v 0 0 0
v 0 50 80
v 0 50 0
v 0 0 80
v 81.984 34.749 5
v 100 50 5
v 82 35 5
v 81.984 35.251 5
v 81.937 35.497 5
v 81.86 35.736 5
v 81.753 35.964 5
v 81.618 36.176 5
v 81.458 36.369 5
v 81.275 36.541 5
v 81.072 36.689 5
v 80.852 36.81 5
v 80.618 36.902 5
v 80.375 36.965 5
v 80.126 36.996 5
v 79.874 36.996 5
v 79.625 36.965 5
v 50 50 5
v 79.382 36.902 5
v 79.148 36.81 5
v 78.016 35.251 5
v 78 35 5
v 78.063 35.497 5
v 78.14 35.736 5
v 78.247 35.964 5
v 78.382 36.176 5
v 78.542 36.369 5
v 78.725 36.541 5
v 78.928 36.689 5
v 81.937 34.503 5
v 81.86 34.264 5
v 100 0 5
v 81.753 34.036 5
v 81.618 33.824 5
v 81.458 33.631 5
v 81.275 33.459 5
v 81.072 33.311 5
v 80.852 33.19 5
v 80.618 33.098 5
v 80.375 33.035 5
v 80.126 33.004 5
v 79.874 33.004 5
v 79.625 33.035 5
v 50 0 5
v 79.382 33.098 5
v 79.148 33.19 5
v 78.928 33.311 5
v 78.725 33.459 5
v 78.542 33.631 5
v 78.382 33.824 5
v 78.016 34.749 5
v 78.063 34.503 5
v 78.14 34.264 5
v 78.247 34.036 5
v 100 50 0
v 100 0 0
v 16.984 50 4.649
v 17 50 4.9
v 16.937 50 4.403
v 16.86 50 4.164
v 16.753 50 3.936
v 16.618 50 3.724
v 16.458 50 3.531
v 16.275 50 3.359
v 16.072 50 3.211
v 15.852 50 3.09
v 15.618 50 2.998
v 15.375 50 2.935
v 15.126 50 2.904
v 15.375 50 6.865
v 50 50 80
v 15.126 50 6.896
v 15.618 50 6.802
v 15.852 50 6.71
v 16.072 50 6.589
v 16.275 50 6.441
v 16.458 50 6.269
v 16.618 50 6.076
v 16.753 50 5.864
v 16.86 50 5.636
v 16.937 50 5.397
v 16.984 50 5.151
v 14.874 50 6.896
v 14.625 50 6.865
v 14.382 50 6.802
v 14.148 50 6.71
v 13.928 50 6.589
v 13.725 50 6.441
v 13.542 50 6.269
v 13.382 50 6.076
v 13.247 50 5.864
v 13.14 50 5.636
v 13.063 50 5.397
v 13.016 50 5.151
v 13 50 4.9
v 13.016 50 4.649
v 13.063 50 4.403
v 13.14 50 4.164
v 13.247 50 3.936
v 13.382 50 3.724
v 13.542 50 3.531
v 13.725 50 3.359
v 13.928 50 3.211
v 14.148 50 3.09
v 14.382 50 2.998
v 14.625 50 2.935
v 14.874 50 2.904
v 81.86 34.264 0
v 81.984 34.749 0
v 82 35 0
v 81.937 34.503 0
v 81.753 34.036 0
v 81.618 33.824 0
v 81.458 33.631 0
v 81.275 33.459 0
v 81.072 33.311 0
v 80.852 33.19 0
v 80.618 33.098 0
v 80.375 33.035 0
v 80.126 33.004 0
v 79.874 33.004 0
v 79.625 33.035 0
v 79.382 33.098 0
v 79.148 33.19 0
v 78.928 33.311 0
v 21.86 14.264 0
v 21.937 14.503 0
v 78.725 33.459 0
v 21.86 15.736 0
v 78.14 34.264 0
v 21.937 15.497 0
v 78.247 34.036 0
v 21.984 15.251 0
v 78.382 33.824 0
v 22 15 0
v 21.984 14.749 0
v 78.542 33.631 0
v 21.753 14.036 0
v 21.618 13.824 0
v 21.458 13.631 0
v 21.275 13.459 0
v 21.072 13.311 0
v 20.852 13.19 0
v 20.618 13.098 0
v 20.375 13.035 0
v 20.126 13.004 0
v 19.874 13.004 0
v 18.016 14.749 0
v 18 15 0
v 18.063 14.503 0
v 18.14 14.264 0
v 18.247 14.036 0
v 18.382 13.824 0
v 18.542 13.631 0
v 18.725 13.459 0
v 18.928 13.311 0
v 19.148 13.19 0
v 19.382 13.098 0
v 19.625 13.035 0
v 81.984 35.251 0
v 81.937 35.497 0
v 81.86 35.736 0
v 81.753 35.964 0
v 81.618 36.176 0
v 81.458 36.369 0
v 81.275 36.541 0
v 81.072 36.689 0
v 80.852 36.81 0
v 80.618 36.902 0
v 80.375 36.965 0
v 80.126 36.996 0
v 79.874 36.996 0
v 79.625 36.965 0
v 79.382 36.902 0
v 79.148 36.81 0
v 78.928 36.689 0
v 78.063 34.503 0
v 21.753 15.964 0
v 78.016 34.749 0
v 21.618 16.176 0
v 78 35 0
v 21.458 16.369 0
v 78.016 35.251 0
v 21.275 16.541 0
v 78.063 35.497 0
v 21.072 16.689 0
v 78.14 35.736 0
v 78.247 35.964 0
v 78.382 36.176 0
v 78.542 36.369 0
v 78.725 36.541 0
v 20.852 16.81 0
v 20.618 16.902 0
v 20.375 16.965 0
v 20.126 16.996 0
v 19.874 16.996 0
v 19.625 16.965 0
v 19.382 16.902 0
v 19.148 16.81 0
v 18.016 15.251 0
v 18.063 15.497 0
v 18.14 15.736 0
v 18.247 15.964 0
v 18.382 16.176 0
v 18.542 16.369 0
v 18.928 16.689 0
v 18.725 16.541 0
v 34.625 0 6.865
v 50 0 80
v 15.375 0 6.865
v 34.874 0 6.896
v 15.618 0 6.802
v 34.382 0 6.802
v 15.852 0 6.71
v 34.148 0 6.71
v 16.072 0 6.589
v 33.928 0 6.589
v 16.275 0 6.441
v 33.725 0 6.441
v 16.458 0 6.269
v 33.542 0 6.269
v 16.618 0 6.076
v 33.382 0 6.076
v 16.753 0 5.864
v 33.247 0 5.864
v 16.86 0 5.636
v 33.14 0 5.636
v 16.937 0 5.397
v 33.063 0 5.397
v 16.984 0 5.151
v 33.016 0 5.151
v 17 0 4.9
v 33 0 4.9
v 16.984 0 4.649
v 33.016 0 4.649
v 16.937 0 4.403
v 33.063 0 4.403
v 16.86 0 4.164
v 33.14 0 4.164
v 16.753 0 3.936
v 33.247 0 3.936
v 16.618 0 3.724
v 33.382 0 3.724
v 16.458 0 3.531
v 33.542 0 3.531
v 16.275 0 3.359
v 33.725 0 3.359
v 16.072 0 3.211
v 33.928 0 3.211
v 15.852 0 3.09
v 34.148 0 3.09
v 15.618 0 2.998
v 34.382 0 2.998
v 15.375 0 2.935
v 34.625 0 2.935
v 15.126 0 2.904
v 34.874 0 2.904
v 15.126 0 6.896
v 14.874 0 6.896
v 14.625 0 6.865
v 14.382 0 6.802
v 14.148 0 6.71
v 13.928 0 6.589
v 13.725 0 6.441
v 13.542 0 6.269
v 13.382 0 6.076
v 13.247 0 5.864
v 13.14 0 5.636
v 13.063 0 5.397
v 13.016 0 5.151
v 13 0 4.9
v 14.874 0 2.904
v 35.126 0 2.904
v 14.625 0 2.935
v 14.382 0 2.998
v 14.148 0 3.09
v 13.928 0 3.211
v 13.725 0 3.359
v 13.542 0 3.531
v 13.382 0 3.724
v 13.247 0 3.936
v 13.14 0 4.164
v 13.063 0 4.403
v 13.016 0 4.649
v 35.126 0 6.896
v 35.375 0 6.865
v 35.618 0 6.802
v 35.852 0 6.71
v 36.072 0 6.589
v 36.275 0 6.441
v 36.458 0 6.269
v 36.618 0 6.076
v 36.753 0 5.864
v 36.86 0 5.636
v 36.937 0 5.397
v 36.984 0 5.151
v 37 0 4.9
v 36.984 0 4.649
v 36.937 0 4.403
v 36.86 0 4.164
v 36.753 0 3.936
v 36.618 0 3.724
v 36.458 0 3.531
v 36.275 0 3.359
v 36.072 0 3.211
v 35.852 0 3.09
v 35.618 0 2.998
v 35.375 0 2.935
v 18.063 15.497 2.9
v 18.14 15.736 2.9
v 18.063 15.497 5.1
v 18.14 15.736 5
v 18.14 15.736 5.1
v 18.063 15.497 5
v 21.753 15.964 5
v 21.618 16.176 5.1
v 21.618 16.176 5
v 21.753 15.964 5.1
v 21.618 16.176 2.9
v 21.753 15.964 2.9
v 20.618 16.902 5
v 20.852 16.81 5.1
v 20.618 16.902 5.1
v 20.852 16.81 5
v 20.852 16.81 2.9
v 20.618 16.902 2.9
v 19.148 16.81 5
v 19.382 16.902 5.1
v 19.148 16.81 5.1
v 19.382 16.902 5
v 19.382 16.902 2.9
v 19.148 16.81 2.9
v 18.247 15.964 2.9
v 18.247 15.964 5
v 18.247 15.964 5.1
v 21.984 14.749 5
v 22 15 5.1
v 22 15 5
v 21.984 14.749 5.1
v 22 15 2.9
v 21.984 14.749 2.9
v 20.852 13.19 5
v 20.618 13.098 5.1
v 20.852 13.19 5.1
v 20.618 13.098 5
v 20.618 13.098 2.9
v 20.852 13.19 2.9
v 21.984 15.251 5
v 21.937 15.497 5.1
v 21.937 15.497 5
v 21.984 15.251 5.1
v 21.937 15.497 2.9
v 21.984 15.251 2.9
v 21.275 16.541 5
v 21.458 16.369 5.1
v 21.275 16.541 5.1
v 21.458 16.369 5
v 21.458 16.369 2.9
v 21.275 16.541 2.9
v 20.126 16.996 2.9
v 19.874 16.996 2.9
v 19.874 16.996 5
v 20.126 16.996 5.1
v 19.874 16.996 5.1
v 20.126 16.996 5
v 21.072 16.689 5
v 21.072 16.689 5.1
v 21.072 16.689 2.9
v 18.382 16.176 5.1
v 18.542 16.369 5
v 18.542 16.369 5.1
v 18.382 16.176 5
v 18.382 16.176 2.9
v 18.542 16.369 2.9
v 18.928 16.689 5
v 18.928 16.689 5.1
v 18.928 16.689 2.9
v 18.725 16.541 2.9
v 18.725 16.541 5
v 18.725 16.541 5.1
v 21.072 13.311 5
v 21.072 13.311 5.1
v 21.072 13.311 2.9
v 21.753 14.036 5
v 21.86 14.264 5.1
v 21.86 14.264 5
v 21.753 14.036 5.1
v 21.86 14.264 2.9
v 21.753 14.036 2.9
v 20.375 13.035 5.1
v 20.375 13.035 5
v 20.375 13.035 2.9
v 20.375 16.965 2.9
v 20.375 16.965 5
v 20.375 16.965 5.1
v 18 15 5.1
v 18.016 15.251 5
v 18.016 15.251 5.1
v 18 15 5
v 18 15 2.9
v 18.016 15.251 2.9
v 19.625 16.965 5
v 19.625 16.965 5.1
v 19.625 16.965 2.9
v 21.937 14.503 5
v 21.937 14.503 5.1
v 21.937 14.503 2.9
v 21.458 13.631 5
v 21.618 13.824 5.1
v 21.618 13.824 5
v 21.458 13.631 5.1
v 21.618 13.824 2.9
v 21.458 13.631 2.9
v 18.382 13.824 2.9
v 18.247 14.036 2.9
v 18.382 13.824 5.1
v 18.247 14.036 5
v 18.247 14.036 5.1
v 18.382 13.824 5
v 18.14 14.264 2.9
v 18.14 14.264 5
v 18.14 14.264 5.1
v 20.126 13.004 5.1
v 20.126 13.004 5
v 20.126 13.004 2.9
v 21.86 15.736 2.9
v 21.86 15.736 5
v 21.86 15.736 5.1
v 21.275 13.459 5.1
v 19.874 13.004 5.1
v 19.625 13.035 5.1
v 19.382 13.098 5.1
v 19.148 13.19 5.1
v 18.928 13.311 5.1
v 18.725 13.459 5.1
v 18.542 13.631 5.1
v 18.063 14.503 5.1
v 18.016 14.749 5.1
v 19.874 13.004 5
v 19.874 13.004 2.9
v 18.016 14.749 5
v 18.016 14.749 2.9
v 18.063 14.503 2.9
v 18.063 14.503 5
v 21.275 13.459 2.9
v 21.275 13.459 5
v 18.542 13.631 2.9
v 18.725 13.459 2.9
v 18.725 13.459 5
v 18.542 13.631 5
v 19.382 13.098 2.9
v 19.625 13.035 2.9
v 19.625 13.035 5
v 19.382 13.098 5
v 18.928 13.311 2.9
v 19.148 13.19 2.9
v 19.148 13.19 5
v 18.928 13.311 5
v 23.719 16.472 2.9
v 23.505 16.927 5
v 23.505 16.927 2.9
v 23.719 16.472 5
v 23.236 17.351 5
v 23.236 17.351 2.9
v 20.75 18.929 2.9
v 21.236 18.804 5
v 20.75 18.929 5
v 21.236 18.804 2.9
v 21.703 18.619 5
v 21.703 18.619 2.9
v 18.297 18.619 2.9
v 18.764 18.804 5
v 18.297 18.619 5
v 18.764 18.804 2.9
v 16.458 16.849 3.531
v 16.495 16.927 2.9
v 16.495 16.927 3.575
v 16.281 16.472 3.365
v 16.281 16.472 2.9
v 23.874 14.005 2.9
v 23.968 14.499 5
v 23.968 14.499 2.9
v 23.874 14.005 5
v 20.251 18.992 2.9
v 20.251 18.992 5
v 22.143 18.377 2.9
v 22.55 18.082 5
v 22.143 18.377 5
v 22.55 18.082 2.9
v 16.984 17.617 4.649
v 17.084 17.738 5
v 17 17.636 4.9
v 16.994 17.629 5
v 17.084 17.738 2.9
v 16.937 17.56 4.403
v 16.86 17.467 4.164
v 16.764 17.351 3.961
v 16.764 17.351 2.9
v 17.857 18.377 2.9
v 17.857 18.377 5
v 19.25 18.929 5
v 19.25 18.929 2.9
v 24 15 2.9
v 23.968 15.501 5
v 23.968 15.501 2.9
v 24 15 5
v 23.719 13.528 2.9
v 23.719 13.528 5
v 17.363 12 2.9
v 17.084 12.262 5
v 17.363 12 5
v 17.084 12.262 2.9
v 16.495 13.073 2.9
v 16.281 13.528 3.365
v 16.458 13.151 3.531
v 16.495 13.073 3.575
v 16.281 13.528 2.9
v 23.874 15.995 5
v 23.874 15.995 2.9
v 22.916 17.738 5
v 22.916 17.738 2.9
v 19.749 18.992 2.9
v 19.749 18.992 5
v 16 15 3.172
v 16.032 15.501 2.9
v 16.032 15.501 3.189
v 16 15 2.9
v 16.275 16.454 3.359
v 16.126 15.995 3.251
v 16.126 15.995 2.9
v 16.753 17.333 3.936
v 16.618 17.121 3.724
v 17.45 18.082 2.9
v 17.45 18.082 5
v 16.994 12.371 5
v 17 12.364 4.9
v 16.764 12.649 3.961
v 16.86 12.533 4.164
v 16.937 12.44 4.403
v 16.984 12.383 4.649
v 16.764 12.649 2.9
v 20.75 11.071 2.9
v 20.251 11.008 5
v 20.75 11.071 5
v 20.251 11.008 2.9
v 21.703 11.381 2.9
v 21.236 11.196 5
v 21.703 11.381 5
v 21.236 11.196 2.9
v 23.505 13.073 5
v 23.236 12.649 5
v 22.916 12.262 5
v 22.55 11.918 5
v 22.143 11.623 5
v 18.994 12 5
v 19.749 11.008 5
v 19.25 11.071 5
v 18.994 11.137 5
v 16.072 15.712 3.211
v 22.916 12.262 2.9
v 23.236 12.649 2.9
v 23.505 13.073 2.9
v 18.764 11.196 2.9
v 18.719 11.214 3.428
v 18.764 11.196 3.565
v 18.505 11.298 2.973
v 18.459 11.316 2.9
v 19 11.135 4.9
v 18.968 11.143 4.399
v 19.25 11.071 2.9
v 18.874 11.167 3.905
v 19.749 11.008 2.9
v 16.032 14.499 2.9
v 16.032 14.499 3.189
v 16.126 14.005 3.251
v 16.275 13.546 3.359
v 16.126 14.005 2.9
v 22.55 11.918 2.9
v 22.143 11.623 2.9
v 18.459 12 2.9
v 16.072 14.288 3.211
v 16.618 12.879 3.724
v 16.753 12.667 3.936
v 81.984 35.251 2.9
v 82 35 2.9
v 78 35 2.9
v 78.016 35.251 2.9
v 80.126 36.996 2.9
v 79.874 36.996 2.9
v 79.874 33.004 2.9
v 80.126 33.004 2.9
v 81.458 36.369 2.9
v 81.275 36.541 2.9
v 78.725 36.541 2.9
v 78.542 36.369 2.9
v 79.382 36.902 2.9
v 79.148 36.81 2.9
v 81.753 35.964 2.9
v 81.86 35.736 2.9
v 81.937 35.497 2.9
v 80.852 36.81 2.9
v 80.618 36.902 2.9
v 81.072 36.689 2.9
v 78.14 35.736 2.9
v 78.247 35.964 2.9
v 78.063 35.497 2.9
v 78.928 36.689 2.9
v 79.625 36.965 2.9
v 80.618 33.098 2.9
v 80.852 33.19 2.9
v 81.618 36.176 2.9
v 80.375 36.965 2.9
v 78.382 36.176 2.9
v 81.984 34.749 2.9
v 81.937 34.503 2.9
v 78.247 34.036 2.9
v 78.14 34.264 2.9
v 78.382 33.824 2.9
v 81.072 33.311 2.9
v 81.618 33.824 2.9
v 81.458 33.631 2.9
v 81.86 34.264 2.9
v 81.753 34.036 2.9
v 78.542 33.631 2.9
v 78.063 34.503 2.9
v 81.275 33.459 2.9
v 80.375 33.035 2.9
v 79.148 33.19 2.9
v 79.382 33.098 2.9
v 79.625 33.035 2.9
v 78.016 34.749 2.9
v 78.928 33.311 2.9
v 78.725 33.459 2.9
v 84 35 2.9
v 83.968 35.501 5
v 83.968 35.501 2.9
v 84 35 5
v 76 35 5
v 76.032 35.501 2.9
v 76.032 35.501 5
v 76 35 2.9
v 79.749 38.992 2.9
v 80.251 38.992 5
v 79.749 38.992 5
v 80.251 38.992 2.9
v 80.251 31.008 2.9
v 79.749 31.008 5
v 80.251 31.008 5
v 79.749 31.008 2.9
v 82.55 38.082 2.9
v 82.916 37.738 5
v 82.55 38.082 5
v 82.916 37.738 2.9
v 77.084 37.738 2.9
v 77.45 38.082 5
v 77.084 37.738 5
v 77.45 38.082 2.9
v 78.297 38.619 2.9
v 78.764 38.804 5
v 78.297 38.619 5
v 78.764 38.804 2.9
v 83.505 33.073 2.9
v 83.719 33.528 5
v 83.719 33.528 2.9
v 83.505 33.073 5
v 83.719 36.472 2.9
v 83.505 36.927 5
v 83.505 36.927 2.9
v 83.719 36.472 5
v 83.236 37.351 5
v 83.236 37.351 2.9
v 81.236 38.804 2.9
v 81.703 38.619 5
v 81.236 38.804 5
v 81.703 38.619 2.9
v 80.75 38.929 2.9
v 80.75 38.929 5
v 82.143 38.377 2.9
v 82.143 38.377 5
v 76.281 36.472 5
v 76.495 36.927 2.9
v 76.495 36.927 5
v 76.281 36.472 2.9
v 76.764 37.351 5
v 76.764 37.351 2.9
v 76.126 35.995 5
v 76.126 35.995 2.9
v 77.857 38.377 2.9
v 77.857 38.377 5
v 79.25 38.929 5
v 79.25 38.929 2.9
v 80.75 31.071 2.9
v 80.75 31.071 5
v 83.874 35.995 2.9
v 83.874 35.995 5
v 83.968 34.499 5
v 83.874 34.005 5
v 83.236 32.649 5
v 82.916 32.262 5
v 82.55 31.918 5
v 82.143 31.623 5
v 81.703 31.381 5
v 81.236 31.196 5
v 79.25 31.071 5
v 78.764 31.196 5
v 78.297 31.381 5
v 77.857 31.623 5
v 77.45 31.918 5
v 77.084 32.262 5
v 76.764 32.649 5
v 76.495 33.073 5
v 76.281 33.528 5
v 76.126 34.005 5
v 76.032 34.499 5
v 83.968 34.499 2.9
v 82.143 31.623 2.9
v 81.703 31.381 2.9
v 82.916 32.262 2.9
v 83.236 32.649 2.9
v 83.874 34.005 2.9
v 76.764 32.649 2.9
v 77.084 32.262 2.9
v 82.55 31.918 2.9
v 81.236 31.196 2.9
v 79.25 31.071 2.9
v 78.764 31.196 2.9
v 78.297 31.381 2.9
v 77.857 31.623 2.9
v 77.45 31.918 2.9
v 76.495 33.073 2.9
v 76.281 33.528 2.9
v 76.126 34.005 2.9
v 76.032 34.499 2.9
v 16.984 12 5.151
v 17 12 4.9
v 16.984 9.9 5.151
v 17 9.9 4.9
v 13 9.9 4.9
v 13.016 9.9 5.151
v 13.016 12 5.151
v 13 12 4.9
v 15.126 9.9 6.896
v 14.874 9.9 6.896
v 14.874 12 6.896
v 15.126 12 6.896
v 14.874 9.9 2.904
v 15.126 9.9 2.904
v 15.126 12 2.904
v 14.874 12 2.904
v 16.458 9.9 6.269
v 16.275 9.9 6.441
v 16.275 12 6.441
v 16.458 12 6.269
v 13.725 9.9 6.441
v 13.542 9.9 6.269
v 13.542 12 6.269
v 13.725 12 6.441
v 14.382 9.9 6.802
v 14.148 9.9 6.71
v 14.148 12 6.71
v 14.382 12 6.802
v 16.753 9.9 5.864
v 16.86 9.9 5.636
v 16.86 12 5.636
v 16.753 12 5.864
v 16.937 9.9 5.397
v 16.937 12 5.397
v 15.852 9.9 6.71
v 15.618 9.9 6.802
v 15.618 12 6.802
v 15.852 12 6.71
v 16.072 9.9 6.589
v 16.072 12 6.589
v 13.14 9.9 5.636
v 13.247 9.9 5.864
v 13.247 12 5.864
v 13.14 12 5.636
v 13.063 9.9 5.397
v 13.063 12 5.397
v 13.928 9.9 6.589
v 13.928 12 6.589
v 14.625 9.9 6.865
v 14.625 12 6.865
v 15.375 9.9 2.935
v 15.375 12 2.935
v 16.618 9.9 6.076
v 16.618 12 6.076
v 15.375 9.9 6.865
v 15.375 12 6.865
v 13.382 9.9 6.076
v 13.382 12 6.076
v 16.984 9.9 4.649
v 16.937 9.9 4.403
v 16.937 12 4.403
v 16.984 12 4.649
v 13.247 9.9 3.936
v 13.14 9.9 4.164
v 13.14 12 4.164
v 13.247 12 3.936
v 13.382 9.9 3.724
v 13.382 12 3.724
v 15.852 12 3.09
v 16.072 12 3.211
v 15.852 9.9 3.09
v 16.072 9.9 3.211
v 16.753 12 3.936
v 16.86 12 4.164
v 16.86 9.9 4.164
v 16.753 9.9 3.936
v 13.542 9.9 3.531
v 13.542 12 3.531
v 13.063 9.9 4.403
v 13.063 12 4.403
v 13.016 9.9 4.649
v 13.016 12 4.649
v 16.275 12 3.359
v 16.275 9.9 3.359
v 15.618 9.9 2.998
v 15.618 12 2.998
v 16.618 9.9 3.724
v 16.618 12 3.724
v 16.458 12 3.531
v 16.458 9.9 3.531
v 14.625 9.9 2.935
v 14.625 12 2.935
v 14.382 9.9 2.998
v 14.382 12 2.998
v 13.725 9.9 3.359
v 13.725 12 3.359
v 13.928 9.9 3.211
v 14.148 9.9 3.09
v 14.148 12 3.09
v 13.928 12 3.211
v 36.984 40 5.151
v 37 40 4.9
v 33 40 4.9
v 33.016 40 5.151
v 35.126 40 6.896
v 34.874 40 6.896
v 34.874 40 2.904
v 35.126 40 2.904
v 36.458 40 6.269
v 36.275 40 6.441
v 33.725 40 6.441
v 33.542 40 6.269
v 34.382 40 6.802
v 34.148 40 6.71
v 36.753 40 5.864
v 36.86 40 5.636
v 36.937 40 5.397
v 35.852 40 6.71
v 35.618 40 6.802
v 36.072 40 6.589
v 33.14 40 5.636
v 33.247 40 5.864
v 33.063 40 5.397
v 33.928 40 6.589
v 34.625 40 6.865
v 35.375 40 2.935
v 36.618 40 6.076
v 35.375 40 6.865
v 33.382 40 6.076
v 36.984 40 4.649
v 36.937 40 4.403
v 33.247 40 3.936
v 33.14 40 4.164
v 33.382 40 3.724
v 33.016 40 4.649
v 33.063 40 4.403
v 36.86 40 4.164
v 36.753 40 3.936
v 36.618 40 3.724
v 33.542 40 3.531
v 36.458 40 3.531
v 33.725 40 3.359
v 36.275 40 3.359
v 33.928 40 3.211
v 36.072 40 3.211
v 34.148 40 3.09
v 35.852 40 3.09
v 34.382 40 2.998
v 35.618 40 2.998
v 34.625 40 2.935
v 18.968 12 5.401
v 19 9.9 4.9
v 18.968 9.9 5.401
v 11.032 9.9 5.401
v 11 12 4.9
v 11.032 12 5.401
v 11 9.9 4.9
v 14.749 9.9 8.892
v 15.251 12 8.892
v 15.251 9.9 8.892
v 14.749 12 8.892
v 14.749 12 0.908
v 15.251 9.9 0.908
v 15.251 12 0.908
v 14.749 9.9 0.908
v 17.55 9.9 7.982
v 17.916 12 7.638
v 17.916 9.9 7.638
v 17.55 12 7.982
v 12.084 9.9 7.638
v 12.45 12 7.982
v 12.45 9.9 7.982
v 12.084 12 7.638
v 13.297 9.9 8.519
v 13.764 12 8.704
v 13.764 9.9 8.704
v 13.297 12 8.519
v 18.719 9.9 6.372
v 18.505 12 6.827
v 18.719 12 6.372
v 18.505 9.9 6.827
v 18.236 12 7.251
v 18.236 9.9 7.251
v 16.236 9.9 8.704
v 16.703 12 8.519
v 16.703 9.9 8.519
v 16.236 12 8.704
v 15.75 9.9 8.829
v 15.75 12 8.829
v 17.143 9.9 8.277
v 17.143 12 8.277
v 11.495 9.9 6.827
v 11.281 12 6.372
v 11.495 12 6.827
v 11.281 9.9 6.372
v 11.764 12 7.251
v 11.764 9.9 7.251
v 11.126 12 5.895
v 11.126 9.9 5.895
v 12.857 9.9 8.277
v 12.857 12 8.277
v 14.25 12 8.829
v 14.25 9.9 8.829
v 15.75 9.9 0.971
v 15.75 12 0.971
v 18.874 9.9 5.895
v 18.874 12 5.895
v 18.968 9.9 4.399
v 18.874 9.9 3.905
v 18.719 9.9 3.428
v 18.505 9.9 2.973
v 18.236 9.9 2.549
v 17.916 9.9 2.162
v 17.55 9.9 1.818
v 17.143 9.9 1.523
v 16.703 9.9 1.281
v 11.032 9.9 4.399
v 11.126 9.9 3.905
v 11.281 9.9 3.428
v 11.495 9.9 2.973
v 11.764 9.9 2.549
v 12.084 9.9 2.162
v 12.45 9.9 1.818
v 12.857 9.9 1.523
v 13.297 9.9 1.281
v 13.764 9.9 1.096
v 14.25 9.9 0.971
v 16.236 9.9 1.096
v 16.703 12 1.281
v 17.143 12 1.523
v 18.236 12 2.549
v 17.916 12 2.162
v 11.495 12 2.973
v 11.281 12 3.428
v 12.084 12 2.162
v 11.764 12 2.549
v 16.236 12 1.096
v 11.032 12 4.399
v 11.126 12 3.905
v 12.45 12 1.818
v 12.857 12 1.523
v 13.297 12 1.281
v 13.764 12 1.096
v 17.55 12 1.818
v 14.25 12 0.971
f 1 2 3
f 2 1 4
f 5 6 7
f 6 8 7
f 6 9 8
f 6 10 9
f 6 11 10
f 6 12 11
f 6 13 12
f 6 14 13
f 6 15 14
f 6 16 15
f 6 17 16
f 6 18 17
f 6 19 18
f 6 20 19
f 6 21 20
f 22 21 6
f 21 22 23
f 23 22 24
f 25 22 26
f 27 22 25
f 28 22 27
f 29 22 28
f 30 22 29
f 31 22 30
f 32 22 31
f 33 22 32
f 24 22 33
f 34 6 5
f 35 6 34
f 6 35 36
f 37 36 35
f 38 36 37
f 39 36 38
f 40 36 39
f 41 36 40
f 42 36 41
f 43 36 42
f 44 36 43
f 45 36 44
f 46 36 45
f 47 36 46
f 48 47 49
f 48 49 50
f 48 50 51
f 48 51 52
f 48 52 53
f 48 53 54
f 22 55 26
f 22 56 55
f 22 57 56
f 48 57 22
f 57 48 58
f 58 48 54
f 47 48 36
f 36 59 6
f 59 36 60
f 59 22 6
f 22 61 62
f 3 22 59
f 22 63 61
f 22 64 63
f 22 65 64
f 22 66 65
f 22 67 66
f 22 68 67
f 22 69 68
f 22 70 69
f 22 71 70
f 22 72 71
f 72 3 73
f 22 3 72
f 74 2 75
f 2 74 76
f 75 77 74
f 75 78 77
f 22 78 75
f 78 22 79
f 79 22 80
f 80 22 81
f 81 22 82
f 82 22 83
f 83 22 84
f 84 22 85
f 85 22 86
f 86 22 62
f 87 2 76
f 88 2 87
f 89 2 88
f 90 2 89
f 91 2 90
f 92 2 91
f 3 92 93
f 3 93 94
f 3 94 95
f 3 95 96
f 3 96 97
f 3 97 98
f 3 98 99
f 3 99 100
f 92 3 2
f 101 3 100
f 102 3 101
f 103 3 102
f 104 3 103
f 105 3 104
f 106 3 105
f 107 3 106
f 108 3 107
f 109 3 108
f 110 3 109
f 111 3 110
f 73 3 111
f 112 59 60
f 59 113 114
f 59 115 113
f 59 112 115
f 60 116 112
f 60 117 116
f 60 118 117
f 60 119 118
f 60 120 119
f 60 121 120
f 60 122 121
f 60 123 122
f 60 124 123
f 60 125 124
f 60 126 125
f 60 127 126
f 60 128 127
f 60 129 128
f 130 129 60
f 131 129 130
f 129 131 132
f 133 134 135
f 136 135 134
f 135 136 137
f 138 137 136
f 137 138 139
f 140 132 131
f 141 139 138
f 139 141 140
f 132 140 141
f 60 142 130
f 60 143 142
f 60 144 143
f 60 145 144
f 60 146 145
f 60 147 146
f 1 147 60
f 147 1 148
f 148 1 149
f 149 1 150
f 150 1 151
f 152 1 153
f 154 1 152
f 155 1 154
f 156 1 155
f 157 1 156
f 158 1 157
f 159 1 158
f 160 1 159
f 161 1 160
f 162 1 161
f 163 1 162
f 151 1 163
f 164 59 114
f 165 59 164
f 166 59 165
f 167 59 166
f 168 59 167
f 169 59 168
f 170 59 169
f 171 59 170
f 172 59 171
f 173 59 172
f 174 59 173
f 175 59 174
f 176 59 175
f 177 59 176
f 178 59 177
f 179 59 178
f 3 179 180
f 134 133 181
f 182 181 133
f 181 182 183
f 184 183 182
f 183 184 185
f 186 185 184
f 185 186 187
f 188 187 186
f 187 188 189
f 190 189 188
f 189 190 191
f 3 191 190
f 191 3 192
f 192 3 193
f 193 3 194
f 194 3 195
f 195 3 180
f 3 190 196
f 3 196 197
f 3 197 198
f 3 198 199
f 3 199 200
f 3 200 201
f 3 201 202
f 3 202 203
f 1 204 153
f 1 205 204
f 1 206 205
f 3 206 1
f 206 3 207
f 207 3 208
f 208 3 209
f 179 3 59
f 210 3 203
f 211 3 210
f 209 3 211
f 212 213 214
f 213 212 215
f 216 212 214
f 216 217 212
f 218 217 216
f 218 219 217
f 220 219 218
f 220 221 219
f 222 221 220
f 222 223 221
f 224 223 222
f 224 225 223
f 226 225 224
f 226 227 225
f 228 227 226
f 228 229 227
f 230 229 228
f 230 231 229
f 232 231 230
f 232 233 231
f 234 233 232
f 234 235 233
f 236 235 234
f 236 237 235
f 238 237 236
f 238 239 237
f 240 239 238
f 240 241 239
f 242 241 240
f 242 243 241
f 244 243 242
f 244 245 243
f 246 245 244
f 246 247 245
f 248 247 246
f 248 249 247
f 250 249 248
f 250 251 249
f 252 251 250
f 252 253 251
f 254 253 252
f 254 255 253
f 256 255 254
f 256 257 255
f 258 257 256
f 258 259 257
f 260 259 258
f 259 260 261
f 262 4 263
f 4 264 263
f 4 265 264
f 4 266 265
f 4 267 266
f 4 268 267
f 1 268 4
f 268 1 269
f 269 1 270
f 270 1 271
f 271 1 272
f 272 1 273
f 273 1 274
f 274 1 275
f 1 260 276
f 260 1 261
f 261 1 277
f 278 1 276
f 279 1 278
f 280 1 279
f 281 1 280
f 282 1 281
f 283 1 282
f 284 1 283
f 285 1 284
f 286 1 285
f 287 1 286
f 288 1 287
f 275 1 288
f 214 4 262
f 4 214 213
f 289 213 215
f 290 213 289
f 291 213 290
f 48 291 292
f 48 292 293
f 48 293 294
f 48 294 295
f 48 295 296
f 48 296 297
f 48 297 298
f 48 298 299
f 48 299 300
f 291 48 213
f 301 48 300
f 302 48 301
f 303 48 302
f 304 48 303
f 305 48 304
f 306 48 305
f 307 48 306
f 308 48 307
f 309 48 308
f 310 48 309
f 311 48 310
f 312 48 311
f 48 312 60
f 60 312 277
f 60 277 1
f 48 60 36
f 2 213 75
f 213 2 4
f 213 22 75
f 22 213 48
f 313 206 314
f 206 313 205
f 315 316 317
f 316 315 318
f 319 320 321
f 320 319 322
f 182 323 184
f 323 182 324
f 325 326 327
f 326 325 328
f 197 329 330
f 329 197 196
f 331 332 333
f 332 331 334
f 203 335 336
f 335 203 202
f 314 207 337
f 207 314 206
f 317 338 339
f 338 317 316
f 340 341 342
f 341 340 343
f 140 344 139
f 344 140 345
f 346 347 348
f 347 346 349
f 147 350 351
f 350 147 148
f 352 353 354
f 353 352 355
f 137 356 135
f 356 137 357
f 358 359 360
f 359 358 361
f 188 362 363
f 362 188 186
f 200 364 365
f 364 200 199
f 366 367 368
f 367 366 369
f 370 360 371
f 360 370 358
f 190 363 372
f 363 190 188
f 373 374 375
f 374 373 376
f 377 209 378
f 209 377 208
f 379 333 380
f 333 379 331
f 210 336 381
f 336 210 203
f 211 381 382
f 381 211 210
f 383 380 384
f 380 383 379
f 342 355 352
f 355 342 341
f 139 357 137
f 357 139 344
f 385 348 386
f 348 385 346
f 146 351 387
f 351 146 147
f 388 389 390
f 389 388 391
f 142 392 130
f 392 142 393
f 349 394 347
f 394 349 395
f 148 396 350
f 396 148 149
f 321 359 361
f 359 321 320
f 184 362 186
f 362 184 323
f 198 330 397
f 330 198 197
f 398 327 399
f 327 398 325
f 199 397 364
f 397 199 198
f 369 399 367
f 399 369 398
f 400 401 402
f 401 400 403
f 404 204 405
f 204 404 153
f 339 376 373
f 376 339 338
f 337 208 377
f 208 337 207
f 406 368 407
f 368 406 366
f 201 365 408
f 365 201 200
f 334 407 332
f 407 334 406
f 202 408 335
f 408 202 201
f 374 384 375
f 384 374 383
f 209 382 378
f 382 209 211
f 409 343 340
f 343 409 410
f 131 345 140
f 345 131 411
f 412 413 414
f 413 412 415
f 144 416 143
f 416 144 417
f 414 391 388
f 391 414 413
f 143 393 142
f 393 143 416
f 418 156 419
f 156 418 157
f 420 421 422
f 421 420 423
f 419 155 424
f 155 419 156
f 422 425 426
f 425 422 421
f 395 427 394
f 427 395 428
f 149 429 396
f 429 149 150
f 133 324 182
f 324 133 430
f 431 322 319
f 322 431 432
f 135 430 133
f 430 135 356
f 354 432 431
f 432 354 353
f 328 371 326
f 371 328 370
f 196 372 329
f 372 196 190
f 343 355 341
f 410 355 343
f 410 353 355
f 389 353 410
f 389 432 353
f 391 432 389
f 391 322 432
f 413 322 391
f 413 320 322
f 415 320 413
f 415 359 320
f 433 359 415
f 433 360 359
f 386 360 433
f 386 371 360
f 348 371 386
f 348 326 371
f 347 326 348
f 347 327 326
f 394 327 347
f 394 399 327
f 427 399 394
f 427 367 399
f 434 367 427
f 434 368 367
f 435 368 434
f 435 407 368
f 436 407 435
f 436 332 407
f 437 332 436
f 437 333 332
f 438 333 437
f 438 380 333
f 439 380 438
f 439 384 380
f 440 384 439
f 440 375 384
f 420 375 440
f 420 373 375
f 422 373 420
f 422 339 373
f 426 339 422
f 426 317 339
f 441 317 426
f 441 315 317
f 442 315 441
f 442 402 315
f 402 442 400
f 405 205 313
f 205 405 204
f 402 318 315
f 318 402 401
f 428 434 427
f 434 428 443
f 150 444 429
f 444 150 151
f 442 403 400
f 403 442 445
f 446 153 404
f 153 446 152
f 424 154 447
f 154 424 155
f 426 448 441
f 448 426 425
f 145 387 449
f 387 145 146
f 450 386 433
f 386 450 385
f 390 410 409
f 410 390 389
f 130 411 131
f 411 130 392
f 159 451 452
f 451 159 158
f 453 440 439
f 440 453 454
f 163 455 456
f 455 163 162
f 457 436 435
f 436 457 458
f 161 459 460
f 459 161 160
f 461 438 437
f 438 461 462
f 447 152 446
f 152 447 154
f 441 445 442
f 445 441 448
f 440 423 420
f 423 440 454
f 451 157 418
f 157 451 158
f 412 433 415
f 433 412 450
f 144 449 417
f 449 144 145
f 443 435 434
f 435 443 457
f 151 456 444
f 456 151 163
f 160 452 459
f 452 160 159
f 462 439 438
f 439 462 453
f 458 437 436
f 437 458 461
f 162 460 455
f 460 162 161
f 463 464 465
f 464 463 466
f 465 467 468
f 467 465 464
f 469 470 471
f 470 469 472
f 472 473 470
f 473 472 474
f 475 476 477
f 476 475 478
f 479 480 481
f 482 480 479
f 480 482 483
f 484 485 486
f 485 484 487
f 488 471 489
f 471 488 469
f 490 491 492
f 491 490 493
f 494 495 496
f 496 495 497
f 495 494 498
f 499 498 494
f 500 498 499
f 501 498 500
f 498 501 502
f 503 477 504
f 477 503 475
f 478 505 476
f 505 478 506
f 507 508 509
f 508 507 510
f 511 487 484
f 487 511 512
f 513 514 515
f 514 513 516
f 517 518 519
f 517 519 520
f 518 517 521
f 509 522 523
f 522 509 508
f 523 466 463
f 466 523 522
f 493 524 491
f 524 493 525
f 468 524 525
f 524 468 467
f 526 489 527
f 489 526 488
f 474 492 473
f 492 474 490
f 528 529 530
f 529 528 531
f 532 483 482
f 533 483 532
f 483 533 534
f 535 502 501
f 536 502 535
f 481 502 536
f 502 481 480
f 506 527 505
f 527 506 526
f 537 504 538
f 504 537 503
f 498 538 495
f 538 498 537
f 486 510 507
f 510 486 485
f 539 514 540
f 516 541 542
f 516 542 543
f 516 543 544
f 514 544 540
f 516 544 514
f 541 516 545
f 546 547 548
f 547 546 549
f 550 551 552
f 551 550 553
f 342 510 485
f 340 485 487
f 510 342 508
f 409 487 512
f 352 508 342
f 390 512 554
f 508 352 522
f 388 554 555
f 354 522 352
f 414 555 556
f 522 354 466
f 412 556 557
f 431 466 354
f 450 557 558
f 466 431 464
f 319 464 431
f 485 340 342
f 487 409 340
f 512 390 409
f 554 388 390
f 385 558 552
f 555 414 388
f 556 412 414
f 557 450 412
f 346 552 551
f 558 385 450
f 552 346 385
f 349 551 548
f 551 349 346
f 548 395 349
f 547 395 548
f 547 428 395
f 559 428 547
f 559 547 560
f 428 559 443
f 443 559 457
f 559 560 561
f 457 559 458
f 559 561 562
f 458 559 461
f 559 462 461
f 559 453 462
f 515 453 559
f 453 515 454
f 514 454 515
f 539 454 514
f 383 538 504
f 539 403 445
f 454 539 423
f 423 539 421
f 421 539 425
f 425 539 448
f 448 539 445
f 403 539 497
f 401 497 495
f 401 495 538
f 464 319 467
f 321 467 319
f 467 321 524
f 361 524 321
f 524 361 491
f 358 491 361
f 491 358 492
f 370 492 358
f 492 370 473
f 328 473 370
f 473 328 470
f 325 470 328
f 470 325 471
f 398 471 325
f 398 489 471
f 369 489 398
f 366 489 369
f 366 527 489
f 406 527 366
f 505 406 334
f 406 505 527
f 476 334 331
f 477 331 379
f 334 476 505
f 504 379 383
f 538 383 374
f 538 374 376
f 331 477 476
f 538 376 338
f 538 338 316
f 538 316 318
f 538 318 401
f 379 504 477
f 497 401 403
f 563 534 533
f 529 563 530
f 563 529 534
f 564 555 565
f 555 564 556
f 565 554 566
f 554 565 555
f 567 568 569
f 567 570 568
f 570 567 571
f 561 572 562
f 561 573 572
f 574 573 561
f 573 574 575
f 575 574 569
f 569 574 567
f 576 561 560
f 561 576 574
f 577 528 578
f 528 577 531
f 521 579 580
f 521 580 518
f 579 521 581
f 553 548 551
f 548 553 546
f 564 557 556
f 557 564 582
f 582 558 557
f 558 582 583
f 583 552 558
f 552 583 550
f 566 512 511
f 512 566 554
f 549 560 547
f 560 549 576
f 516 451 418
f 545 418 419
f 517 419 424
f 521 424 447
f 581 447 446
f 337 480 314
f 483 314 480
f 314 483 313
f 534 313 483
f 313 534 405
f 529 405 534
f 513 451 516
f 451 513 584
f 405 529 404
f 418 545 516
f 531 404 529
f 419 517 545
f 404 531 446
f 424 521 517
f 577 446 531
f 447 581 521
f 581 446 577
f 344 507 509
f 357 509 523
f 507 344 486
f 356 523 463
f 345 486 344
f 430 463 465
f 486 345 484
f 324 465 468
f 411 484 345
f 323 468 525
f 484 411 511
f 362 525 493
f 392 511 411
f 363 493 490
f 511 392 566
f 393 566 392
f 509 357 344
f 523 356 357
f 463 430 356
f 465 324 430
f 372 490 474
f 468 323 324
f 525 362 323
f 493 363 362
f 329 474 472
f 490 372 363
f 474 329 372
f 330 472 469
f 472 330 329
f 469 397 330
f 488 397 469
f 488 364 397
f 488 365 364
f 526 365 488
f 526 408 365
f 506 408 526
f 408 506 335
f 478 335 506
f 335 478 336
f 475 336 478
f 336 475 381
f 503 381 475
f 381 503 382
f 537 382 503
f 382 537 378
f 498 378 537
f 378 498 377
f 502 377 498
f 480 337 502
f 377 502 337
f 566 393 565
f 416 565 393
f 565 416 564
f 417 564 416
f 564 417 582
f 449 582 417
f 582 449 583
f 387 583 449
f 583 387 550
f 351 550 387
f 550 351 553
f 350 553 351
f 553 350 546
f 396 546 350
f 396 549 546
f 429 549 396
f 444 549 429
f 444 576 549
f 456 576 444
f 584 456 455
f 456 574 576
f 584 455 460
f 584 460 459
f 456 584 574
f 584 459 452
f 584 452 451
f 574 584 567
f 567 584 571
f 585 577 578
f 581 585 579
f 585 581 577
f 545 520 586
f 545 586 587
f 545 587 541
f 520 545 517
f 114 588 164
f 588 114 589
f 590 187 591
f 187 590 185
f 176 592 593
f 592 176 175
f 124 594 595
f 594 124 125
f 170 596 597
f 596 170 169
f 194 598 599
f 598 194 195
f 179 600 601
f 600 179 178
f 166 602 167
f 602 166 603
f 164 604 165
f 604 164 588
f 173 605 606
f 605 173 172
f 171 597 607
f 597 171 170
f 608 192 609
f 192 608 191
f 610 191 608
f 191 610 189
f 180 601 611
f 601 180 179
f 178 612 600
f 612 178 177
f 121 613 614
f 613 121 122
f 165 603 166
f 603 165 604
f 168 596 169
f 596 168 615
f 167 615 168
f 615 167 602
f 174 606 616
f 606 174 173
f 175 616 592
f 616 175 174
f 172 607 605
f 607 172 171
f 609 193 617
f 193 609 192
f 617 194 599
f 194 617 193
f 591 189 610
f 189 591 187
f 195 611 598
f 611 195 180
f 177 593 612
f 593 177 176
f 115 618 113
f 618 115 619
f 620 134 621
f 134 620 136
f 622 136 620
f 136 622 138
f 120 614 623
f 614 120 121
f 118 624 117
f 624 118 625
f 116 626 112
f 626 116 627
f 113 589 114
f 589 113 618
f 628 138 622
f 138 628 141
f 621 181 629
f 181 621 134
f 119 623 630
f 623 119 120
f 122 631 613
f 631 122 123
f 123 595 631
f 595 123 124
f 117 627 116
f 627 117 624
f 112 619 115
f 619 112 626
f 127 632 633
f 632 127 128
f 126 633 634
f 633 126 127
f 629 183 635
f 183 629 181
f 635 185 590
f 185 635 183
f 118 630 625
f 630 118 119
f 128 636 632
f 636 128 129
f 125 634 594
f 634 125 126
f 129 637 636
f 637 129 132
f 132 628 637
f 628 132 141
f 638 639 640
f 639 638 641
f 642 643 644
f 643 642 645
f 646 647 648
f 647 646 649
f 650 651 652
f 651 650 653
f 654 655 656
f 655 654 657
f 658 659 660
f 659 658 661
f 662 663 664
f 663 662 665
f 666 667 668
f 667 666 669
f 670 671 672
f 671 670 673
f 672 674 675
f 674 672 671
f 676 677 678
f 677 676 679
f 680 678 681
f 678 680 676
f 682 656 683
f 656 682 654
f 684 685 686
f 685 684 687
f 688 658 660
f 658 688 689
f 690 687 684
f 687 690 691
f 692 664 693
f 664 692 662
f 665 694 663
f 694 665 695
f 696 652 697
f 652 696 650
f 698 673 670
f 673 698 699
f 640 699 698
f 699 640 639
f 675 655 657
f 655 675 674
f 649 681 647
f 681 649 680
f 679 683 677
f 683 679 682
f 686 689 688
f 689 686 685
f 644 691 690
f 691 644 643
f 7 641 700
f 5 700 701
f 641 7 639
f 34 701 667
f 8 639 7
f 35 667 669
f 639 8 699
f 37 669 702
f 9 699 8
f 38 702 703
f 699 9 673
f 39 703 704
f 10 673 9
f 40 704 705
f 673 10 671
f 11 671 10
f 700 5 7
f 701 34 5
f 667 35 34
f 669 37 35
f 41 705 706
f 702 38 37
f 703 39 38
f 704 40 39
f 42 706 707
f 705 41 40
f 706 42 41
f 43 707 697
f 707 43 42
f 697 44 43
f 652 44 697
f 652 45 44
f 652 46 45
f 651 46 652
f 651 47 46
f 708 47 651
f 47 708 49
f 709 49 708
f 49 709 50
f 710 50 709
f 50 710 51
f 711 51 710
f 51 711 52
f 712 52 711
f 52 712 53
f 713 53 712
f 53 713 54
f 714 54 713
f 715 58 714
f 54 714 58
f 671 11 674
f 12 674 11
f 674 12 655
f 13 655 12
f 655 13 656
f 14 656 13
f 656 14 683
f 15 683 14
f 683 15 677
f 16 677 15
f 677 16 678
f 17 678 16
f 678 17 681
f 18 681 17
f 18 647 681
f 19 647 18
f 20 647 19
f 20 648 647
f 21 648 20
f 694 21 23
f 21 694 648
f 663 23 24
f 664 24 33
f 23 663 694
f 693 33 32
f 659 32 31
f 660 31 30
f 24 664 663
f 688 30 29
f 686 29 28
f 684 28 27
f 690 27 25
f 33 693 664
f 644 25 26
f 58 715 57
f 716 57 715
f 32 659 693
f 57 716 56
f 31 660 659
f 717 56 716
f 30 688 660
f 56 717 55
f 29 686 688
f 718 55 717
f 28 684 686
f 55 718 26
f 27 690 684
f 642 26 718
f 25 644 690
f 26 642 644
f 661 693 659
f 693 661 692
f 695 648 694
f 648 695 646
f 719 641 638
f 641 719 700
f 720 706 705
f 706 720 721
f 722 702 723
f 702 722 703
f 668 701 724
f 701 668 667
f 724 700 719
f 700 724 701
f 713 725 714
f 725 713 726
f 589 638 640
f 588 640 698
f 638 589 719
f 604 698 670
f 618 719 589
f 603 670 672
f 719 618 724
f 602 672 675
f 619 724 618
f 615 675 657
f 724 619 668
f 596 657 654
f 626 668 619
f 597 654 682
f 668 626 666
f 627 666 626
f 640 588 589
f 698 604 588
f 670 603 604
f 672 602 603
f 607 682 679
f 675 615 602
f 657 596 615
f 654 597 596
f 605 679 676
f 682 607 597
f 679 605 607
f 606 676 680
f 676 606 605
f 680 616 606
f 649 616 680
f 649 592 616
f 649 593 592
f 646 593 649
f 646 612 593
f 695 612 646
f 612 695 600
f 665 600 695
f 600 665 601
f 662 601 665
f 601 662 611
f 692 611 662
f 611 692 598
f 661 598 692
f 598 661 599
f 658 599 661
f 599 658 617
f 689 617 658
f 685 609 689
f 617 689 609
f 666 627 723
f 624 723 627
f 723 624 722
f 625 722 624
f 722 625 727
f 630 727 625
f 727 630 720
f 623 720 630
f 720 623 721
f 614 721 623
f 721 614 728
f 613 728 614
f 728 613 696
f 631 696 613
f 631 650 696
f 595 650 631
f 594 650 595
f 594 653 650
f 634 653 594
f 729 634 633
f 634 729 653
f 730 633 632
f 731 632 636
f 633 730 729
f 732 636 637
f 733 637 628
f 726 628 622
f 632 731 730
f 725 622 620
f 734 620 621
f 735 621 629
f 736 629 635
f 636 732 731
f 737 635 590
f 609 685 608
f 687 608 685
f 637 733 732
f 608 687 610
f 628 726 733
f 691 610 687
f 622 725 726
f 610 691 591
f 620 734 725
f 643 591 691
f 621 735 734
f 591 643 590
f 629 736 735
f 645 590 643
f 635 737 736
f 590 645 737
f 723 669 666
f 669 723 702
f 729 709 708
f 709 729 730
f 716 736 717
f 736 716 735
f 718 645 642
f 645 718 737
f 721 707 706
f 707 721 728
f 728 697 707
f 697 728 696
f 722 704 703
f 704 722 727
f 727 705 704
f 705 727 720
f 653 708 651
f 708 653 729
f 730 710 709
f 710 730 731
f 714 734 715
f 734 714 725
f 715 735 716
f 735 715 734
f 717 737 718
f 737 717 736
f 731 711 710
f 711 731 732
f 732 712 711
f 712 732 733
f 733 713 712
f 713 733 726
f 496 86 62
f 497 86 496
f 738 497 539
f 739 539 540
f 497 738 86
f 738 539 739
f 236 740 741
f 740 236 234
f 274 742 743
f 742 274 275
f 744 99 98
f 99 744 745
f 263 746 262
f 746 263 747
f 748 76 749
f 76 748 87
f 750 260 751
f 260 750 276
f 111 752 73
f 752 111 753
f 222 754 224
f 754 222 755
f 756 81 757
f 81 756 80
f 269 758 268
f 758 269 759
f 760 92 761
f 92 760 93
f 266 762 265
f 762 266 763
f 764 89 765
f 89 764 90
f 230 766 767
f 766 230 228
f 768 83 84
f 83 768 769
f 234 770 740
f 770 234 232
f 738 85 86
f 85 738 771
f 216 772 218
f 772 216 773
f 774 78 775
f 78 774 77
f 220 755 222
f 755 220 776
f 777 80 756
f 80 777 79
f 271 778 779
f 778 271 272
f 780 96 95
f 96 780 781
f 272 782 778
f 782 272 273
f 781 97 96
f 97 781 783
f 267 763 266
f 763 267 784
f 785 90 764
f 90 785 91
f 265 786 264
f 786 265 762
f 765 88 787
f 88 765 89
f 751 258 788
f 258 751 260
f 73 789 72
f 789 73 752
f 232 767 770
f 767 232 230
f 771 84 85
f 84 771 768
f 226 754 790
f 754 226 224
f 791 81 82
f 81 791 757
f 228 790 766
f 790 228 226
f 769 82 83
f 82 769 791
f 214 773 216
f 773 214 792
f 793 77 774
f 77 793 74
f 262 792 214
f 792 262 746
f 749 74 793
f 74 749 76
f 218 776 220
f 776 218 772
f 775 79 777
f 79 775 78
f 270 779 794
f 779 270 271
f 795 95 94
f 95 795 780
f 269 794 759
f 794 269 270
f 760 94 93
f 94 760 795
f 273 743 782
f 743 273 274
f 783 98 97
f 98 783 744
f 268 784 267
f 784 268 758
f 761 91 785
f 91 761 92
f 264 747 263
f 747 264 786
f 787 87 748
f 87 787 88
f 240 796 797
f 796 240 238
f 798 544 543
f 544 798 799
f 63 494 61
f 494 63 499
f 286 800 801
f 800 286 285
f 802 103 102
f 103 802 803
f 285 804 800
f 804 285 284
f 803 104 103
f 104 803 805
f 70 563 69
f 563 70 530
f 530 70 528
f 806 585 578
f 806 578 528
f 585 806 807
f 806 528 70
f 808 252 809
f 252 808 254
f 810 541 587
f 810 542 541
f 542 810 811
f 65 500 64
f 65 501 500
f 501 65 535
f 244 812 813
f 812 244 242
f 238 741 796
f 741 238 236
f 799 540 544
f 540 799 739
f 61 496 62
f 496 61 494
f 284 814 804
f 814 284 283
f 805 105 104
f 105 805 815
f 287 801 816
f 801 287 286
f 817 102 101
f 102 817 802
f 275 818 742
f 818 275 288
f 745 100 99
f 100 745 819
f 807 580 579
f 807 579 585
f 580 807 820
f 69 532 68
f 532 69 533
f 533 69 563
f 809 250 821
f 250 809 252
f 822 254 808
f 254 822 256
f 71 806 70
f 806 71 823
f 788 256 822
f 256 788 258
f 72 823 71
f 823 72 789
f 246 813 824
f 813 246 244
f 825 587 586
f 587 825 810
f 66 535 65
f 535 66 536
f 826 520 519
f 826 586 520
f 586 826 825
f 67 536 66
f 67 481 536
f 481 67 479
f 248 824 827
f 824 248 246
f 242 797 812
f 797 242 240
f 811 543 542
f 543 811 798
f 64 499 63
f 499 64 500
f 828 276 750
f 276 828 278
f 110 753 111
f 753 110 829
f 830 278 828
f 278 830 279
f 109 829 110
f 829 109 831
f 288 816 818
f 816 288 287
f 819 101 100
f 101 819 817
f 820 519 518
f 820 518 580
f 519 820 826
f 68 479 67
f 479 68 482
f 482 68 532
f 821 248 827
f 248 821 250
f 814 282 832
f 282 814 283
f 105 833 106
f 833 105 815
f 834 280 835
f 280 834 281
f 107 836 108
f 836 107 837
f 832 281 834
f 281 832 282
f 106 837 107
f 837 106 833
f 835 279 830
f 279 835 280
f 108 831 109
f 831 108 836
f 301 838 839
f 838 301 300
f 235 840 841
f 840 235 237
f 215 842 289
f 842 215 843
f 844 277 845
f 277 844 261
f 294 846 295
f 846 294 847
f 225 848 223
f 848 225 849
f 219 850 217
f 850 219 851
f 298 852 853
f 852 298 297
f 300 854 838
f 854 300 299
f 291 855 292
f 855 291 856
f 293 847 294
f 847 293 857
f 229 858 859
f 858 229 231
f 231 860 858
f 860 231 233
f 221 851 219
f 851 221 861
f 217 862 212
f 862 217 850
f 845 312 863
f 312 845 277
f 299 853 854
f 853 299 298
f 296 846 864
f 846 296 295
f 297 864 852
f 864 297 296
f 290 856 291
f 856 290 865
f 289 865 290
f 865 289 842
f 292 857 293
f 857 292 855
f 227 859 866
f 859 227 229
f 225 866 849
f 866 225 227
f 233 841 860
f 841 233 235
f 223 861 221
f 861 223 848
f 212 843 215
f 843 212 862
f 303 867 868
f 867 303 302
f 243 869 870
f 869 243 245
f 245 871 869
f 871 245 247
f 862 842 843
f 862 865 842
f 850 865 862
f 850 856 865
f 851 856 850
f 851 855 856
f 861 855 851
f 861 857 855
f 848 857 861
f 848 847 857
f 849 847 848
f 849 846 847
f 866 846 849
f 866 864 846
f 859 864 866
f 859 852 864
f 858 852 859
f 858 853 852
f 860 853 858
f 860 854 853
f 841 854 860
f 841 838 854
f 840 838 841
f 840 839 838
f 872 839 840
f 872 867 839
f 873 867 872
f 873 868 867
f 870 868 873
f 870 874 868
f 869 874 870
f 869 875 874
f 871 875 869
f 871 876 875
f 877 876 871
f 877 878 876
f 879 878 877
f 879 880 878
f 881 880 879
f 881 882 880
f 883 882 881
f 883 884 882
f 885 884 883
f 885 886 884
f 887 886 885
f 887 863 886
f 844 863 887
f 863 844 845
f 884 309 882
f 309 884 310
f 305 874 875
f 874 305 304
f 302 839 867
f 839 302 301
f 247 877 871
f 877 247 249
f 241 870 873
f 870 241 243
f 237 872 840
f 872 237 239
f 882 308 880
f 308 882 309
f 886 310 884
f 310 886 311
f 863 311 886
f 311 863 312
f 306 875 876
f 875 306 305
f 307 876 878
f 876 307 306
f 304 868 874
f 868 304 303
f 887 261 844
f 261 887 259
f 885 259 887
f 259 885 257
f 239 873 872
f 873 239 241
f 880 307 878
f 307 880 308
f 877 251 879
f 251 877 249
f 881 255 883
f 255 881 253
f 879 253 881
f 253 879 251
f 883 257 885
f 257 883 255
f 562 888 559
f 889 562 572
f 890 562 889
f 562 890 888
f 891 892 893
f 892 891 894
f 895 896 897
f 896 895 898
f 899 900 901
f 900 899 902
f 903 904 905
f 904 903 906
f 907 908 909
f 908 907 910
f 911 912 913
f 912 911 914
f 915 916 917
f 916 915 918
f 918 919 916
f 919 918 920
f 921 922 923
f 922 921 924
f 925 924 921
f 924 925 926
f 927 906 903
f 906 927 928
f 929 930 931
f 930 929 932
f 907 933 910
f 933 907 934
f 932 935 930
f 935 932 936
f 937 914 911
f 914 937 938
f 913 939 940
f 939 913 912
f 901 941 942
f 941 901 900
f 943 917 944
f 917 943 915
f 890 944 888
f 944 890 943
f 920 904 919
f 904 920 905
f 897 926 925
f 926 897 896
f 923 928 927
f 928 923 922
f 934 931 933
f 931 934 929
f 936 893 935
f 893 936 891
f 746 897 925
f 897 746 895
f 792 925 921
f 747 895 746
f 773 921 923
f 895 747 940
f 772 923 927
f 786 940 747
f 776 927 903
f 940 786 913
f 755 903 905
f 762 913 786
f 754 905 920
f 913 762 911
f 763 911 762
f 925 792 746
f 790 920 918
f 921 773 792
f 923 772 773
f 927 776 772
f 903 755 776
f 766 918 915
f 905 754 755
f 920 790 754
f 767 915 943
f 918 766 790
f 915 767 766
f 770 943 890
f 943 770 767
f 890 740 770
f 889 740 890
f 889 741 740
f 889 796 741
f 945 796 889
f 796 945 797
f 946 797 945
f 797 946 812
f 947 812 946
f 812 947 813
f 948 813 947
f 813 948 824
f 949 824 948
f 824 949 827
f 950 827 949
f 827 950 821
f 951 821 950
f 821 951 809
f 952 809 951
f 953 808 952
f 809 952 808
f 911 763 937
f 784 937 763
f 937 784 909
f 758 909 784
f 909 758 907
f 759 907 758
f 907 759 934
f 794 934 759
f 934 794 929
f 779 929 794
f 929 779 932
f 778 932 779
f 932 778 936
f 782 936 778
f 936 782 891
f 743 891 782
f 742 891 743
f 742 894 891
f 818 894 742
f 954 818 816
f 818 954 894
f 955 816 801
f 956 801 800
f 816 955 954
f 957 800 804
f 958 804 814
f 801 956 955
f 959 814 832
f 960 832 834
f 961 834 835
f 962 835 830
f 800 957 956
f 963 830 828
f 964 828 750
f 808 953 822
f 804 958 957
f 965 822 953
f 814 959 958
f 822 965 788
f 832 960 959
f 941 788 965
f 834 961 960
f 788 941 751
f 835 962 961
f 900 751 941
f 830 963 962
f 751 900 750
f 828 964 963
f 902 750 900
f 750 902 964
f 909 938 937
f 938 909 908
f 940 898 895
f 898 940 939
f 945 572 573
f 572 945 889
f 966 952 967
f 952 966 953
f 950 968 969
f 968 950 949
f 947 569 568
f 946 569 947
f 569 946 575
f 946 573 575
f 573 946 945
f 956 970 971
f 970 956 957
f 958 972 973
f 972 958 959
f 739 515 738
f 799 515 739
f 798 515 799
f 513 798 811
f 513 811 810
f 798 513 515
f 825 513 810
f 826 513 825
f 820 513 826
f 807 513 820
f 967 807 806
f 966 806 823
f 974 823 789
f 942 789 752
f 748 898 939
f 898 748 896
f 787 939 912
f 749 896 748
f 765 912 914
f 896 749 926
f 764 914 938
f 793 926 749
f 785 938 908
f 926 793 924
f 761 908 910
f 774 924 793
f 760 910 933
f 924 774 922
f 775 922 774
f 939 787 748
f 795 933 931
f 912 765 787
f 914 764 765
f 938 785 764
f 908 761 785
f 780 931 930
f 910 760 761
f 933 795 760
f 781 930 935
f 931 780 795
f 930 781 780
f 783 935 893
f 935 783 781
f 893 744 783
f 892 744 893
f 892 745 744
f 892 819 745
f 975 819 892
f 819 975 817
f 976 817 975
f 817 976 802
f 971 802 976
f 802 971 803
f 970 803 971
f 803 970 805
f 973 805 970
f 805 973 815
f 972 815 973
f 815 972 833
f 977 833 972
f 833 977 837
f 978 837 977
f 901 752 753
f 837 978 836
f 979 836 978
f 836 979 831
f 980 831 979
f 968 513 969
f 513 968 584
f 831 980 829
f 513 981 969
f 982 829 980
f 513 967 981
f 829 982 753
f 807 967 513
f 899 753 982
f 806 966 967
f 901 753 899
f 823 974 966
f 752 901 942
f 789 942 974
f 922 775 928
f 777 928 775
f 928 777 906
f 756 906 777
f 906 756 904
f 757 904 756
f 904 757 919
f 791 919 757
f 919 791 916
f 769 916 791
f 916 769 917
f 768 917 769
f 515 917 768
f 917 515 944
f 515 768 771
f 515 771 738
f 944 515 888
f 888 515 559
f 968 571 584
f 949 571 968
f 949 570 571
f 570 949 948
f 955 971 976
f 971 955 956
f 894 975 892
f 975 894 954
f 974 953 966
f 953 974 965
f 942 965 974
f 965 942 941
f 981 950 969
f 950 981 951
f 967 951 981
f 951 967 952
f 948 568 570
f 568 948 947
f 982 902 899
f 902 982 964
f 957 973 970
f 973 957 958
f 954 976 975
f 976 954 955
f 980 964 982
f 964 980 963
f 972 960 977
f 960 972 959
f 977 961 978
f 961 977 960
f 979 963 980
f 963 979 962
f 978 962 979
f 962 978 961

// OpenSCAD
// L-shaped mounting bracket with counterbored holes
// Dimensions based on reference sketch: 
// - Horizontal leg: 100mm long x 50mm wide x 5mm thick
// - Vertical leg: 80mm high x 50mm wide x 5mm thick
// - Hole pattern: M4 holes (4mm dia) with 8mm dia x 2mm deep counterbores
// - Horizontal leg holes: at (20,15) and (80,35) from origin (bottom-left of horizontal leg)
// - Vertical leg holes: at (15,20), (35,40), and (15,60) from the bend origin
// Geometry is manifold and 3D-printable (print flat on horizontal leg)

$fn = 50; // Resolution for cylinders

module l_bracket() {
    difference() {
        union() {
            // Horizontal leg (base)
            cube([100, 50, 5]);
            
            // Vertical leg (upright from bend)
            translate([0, 0, 5]) cube([50, 50, 75]);
        }
        
        // Hole 1 on horizontal leg: through hole with counterbore on top
        translate([20, 15, -0.1]) {
            cylinder(h = 5.2, d = 4); // Through hole
            translate([0, 0, 3]) cylinder(h = 2.1, d = 8); // Counterbore
        }
        
        // Hole 2 on horizontal leg: through hole with counterbore on top
        translate([80, 35, -0.1]) {
            cylinder(h = 5.2, d = 4); // Through hole
            translate([0, 0, 3]) cylinder(h = 2.1, d = 8); // Counterbore
        }
        
        // Hole 1 on vertical leg: through hole with counterbore on outer face
        translate([15, 20, 5 - 0.1]) rotate([90, 0, 0]) {
            cylinder(h = 50.2, d = 4); // Through hole (along y)
            translate([0, 0, 48]) cylinder(h = 2.1, d = 8); // Counterbore (on outer side)
        }
        
        // Hole 2 on vertical leg: through hole with counterbore on outer face
        translate([35, 40, 5 - 0.1]) rotate([90, 0, 0]) {
            cylinder(h = 50.2, d = 4); // Through hole (along y)
            translate([0, 0, 48]) cylinder(h = 2.1, d = 8); // Counterbore
        }
        
        // Hole 3 on vertical leg: through hole with counterbore on outer face
        translate([15, 60, 5 - 0.1]) rotate([90, 0, 0]) {
            cylinder(h = 50.2, d = 4); // Through hole (along y)
            translate([0, 0, 48]) cylinder(h = 2.1, d = 8); // Counterbore
        }
    }
}

// Render the bracket
l_bracket();
